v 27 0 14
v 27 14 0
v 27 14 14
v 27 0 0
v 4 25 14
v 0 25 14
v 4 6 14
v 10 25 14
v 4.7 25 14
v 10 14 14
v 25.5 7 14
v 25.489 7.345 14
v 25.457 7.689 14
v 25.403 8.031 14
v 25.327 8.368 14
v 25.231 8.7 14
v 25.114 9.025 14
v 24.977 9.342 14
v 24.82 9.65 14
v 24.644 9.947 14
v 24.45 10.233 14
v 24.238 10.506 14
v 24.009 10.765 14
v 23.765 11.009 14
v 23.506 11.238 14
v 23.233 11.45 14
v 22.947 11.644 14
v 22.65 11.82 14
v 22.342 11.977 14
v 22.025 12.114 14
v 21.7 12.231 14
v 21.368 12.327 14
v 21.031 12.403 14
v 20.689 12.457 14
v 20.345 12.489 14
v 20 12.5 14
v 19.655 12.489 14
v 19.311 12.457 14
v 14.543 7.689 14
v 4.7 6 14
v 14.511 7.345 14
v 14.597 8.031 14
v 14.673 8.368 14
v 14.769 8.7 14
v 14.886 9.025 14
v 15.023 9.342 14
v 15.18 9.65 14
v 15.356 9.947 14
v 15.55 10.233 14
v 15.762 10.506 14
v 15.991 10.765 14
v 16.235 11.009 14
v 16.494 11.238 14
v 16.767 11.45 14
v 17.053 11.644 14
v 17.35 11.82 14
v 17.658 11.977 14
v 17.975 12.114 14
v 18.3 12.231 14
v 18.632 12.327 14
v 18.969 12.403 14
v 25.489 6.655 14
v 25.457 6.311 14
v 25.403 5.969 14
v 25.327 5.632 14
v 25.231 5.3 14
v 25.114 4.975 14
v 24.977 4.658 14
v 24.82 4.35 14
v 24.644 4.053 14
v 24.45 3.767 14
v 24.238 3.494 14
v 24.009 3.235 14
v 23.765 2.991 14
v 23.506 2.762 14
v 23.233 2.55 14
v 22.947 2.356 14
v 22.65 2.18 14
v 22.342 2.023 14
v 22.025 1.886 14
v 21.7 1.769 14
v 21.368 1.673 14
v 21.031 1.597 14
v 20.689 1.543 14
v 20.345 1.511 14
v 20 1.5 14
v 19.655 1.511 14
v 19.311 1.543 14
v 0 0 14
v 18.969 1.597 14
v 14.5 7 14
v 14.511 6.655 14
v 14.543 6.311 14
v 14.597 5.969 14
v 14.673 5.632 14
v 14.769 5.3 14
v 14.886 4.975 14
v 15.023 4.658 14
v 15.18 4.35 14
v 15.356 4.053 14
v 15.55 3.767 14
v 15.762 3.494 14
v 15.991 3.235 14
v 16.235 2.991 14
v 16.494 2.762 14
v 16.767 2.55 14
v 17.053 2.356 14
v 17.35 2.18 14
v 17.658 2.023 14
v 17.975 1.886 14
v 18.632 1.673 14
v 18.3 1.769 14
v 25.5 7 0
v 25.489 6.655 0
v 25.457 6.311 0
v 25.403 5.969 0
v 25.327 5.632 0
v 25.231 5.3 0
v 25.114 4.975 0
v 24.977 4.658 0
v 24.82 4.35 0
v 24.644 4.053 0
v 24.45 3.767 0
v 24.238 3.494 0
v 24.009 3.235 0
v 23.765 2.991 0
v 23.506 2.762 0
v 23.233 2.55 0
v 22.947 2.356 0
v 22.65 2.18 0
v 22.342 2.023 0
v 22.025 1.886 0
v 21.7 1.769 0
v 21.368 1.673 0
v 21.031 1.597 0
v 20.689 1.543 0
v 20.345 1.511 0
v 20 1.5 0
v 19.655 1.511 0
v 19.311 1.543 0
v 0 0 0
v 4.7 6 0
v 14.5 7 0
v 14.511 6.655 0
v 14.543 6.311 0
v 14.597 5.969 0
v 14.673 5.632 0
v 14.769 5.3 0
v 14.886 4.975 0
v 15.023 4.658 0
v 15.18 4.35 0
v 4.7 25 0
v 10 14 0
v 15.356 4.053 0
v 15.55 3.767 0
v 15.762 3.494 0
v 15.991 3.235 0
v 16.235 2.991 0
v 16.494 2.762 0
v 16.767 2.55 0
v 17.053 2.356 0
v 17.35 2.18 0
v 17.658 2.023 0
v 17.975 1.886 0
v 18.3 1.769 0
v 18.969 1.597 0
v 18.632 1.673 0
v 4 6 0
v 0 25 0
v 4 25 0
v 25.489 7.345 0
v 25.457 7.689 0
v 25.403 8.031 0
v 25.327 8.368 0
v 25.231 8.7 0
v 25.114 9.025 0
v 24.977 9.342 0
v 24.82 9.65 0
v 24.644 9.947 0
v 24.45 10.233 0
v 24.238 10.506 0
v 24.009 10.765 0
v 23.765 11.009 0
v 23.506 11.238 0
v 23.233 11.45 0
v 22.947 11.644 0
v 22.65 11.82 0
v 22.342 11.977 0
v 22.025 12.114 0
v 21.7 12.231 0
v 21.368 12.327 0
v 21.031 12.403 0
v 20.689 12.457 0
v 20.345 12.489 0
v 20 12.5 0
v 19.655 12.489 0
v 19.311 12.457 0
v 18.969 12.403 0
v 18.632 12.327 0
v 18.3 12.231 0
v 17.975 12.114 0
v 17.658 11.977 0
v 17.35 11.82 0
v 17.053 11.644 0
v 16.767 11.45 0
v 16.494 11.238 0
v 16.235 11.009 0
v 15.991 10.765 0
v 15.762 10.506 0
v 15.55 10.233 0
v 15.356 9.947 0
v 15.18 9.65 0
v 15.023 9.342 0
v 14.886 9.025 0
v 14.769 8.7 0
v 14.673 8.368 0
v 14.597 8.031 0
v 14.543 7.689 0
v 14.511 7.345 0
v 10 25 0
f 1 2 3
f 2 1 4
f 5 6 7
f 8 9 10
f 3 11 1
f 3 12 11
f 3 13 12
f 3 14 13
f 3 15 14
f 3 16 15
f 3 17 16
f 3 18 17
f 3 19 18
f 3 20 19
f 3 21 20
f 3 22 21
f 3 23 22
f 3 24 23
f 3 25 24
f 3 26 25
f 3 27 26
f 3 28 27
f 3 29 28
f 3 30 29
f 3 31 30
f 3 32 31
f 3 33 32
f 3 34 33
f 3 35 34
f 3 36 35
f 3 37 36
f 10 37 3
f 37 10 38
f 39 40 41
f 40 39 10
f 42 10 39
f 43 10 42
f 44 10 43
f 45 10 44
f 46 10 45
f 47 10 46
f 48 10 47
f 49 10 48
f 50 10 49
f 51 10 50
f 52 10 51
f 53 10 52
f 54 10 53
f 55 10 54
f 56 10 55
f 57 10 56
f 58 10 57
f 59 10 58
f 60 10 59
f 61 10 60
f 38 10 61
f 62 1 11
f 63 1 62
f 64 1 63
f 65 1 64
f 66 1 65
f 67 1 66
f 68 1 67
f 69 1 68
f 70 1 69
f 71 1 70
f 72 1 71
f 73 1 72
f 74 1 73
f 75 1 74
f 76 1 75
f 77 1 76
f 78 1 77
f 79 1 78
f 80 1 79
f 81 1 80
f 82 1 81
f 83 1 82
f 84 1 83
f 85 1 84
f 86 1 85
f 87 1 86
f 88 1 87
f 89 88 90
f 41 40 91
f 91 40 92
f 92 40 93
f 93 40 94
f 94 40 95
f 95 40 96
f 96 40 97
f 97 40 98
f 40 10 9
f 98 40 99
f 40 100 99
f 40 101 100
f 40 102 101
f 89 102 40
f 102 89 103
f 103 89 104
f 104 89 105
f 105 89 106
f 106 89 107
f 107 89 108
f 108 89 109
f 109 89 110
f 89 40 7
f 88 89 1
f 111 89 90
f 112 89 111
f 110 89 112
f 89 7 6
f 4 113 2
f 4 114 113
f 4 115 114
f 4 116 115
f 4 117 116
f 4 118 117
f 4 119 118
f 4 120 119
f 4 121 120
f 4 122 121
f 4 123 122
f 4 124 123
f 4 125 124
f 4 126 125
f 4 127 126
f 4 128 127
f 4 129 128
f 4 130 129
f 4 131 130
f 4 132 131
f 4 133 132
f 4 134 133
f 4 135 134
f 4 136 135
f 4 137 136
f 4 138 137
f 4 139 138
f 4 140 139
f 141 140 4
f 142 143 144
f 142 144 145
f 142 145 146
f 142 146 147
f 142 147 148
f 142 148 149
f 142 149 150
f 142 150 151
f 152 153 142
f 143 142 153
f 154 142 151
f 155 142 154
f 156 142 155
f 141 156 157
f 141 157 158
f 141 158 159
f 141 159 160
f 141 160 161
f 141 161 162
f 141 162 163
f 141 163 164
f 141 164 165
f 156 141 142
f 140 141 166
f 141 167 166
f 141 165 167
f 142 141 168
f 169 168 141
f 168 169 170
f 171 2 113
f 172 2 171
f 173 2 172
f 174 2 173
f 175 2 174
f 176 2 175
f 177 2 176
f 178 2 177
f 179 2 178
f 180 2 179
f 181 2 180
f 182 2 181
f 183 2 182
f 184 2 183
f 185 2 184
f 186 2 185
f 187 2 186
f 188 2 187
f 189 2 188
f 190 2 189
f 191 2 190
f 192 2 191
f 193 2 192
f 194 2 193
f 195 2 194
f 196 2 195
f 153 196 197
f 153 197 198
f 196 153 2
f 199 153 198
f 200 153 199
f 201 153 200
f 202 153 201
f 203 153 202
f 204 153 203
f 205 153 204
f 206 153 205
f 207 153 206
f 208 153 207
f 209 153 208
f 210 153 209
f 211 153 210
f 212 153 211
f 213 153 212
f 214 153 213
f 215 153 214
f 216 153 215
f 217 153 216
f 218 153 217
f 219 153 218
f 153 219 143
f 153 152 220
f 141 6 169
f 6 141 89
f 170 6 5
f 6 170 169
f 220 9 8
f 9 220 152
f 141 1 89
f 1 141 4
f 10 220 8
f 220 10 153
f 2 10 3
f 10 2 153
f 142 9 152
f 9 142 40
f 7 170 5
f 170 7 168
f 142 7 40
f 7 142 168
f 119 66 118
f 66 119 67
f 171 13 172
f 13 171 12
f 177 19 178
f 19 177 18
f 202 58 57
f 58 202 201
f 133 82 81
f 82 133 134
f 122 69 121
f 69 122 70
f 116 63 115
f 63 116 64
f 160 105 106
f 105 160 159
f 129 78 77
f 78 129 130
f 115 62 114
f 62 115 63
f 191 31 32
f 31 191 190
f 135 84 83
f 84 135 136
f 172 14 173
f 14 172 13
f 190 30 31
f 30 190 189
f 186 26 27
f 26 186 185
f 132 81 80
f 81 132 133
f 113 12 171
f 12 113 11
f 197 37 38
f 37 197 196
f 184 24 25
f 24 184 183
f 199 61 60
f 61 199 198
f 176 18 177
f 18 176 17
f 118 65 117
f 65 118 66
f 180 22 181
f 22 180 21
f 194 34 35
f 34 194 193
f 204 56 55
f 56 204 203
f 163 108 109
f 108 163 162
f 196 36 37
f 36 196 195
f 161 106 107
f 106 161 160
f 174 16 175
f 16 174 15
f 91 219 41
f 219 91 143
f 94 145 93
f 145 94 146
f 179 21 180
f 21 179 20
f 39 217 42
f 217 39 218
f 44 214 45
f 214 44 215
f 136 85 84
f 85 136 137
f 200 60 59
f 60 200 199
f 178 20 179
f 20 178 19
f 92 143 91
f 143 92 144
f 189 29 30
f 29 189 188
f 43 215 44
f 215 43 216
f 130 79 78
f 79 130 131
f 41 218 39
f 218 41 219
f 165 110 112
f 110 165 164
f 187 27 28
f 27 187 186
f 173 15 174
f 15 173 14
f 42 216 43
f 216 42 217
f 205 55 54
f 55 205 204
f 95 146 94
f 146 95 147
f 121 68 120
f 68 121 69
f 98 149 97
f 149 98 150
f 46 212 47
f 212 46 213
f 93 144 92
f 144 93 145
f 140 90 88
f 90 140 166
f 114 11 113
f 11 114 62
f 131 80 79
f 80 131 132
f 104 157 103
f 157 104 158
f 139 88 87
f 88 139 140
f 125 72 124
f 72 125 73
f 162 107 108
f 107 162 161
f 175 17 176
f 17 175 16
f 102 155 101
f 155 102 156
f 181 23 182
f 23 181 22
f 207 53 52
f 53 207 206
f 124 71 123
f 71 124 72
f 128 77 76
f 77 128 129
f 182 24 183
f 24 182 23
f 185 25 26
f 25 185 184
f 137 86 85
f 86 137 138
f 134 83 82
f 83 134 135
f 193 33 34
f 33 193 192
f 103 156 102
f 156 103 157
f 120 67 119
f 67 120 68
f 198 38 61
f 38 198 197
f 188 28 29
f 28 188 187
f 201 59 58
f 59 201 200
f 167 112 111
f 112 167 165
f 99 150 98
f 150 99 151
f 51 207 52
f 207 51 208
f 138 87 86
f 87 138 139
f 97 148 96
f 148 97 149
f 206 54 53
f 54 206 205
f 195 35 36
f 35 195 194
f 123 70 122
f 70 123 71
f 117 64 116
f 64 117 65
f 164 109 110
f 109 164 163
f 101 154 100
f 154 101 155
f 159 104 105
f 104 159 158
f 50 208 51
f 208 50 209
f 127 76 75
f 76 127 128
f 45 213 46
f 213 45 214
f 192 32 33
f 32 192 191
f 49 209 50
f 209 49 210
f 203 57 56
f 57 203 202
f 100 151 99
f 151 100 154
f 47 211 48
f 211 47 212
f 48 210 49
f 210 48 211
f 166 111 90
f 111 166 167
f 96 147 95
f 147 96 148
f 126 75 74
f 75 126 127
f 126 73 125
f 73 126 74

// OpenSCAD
height = 14;
depth = 25;
width = 27;
cut_offset_x = 10;
cut_offset_y = 14;
slith_offset_x = 4;
slith_offset_y = 6;
slith_thickness = 0.7;
slith_depth = 25;
pen_offset_x = 20;
pen_offset_y = 7;
pen_rad = 11 / 2;

difference()
{
    cube([width, depth, height]);
    
    translate([cut_offset_x, cut_offset_y, 0])
    {
        cube([width, depth, height]);
    }
    
    translate([slith_offset_x, slith_offset_y, 0])
    {
        cube([slith_thickness, slith_depth, height]);
    }
    
    translate([pen_offset_x, pen_offset_y, 0])
    {
        cylinder(h = height, r = pen_rad, $fn = 100);
    }

}
